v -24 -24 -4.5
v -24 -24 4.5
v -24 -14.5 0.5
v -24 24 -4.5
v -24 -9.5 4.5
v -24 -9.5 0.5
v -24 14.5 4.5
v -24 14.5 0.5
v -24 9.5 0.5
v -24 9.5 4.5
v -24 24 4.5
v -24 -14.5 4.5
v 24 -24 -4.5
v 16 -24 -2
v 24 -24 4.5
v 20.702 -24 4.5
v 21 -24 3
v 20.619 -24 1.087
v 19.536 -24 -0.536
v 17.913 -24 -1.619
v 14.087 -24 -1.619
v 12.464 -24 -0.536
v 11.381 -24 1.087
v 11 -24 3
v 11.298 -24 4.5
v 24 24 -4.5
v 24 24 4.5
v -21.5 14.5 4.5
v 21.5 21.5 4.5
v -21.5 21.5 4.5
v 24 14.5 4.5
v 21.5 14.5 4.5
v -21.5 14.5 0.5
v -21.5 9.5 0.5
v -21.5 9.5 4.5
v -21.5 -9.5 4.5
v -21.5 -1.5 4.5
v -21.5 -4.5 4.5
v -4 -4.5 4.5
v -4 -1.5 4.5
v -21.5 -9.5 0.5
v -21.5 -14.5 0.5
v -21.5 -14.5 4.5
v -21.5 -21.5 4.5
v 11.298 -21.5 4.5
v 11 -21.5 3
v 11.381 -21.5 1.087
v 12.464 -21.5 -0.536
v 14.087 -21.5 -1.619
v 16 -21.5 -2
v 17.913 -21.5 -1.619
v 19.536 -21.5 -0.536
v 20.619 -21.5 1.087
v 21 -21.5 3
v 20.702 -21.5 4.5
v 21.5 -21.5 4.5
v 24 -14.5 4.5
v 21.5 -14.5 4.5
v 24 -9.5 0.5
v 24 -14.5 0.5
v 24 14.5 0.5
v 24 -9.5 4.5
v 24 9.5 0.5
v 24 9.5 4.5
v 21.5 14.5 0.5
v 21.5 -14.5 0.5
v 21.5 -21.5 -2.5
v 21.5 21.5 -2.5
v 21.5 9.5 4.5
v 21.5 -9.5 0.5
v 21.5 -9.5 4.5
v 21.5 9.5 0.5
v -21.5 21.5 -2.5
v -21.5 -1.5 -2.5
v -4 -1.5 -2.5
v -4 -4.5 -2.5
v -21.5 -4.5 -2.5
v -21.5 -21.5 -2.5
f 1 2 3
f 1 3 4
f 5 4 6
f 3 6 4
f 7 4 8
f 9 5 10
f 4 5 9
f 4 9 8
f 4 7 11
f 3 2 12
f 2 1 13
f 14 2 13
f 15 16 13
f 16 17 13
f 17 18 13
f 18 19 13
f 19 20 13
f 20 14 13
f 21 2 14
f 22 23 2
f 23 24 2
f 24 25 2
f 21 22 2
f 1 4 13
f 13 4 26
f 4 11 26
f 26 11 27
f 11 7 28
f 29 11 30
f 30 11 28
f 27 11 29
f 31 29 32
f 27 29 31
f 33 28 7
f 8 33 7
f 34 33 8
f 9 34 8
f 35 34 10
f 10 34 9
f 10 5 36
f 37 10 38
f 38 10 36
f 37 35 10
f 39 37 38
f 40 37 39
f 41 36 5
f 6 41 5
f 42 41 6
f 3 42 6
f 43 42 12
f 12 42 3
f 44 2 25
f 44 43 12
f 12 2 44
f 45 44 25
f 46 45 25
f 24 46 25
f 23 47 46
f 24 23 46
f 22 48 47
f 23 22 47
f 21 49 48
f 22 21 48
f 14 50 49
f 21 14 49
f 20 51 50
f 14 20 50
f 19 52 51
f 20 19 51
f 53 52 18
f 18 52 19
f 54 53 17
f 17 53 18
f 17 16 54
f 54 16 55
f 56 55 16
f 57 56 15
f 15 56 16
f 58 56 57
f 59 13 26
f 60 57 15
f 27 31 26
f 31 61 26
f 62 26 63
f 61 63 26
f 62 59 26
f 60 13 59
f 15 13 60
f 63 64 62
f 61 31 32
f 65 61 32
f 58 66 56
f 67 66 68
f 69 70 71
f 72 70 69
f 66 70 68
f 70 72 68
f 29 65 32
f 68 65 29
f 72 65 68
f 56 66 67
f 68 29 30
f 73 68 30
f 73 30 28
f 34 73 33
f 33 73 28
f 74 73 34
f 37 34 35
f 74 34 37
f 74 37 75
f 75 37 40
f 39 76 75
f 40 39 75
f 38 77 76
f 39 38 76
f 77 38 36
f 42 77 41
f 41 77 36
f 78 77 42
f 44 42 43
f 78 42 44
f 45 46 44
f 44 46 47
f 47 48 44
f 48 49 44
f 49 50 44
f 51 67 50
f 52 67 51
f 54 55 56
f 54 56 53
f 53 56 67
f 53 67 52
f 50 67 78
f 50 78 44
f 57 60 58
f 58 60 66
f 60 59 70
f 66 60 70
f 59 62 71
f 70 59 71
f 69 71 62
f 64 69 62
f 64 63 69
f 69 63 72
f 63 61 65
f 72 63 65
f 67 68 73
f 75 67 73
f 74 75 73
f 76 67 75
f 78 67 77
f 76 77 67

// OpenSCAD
difference(){
	cube(size=[48,48,9], center = true);
	translate([0,0,2]) cube(size=[43,43,9], center = true);
	translate([16,-20.5,3]) rotate([90,0,0]) cylinder(20,5,5);
	translate([22.5,12,3]) cube(size=[5,5,5], center = true);
	translate([22.5,-12,3]) cube(size=[5,5,5], center = true);
	translate([-22.5,12,3]) cube(size=[5,5,5], center = true);
	translate([-22.5,-12,3]) cube(size=[5,5,5], center = true);
}
	translate([-14,-3,0]) cube(size=[20,3,9], center = true);
